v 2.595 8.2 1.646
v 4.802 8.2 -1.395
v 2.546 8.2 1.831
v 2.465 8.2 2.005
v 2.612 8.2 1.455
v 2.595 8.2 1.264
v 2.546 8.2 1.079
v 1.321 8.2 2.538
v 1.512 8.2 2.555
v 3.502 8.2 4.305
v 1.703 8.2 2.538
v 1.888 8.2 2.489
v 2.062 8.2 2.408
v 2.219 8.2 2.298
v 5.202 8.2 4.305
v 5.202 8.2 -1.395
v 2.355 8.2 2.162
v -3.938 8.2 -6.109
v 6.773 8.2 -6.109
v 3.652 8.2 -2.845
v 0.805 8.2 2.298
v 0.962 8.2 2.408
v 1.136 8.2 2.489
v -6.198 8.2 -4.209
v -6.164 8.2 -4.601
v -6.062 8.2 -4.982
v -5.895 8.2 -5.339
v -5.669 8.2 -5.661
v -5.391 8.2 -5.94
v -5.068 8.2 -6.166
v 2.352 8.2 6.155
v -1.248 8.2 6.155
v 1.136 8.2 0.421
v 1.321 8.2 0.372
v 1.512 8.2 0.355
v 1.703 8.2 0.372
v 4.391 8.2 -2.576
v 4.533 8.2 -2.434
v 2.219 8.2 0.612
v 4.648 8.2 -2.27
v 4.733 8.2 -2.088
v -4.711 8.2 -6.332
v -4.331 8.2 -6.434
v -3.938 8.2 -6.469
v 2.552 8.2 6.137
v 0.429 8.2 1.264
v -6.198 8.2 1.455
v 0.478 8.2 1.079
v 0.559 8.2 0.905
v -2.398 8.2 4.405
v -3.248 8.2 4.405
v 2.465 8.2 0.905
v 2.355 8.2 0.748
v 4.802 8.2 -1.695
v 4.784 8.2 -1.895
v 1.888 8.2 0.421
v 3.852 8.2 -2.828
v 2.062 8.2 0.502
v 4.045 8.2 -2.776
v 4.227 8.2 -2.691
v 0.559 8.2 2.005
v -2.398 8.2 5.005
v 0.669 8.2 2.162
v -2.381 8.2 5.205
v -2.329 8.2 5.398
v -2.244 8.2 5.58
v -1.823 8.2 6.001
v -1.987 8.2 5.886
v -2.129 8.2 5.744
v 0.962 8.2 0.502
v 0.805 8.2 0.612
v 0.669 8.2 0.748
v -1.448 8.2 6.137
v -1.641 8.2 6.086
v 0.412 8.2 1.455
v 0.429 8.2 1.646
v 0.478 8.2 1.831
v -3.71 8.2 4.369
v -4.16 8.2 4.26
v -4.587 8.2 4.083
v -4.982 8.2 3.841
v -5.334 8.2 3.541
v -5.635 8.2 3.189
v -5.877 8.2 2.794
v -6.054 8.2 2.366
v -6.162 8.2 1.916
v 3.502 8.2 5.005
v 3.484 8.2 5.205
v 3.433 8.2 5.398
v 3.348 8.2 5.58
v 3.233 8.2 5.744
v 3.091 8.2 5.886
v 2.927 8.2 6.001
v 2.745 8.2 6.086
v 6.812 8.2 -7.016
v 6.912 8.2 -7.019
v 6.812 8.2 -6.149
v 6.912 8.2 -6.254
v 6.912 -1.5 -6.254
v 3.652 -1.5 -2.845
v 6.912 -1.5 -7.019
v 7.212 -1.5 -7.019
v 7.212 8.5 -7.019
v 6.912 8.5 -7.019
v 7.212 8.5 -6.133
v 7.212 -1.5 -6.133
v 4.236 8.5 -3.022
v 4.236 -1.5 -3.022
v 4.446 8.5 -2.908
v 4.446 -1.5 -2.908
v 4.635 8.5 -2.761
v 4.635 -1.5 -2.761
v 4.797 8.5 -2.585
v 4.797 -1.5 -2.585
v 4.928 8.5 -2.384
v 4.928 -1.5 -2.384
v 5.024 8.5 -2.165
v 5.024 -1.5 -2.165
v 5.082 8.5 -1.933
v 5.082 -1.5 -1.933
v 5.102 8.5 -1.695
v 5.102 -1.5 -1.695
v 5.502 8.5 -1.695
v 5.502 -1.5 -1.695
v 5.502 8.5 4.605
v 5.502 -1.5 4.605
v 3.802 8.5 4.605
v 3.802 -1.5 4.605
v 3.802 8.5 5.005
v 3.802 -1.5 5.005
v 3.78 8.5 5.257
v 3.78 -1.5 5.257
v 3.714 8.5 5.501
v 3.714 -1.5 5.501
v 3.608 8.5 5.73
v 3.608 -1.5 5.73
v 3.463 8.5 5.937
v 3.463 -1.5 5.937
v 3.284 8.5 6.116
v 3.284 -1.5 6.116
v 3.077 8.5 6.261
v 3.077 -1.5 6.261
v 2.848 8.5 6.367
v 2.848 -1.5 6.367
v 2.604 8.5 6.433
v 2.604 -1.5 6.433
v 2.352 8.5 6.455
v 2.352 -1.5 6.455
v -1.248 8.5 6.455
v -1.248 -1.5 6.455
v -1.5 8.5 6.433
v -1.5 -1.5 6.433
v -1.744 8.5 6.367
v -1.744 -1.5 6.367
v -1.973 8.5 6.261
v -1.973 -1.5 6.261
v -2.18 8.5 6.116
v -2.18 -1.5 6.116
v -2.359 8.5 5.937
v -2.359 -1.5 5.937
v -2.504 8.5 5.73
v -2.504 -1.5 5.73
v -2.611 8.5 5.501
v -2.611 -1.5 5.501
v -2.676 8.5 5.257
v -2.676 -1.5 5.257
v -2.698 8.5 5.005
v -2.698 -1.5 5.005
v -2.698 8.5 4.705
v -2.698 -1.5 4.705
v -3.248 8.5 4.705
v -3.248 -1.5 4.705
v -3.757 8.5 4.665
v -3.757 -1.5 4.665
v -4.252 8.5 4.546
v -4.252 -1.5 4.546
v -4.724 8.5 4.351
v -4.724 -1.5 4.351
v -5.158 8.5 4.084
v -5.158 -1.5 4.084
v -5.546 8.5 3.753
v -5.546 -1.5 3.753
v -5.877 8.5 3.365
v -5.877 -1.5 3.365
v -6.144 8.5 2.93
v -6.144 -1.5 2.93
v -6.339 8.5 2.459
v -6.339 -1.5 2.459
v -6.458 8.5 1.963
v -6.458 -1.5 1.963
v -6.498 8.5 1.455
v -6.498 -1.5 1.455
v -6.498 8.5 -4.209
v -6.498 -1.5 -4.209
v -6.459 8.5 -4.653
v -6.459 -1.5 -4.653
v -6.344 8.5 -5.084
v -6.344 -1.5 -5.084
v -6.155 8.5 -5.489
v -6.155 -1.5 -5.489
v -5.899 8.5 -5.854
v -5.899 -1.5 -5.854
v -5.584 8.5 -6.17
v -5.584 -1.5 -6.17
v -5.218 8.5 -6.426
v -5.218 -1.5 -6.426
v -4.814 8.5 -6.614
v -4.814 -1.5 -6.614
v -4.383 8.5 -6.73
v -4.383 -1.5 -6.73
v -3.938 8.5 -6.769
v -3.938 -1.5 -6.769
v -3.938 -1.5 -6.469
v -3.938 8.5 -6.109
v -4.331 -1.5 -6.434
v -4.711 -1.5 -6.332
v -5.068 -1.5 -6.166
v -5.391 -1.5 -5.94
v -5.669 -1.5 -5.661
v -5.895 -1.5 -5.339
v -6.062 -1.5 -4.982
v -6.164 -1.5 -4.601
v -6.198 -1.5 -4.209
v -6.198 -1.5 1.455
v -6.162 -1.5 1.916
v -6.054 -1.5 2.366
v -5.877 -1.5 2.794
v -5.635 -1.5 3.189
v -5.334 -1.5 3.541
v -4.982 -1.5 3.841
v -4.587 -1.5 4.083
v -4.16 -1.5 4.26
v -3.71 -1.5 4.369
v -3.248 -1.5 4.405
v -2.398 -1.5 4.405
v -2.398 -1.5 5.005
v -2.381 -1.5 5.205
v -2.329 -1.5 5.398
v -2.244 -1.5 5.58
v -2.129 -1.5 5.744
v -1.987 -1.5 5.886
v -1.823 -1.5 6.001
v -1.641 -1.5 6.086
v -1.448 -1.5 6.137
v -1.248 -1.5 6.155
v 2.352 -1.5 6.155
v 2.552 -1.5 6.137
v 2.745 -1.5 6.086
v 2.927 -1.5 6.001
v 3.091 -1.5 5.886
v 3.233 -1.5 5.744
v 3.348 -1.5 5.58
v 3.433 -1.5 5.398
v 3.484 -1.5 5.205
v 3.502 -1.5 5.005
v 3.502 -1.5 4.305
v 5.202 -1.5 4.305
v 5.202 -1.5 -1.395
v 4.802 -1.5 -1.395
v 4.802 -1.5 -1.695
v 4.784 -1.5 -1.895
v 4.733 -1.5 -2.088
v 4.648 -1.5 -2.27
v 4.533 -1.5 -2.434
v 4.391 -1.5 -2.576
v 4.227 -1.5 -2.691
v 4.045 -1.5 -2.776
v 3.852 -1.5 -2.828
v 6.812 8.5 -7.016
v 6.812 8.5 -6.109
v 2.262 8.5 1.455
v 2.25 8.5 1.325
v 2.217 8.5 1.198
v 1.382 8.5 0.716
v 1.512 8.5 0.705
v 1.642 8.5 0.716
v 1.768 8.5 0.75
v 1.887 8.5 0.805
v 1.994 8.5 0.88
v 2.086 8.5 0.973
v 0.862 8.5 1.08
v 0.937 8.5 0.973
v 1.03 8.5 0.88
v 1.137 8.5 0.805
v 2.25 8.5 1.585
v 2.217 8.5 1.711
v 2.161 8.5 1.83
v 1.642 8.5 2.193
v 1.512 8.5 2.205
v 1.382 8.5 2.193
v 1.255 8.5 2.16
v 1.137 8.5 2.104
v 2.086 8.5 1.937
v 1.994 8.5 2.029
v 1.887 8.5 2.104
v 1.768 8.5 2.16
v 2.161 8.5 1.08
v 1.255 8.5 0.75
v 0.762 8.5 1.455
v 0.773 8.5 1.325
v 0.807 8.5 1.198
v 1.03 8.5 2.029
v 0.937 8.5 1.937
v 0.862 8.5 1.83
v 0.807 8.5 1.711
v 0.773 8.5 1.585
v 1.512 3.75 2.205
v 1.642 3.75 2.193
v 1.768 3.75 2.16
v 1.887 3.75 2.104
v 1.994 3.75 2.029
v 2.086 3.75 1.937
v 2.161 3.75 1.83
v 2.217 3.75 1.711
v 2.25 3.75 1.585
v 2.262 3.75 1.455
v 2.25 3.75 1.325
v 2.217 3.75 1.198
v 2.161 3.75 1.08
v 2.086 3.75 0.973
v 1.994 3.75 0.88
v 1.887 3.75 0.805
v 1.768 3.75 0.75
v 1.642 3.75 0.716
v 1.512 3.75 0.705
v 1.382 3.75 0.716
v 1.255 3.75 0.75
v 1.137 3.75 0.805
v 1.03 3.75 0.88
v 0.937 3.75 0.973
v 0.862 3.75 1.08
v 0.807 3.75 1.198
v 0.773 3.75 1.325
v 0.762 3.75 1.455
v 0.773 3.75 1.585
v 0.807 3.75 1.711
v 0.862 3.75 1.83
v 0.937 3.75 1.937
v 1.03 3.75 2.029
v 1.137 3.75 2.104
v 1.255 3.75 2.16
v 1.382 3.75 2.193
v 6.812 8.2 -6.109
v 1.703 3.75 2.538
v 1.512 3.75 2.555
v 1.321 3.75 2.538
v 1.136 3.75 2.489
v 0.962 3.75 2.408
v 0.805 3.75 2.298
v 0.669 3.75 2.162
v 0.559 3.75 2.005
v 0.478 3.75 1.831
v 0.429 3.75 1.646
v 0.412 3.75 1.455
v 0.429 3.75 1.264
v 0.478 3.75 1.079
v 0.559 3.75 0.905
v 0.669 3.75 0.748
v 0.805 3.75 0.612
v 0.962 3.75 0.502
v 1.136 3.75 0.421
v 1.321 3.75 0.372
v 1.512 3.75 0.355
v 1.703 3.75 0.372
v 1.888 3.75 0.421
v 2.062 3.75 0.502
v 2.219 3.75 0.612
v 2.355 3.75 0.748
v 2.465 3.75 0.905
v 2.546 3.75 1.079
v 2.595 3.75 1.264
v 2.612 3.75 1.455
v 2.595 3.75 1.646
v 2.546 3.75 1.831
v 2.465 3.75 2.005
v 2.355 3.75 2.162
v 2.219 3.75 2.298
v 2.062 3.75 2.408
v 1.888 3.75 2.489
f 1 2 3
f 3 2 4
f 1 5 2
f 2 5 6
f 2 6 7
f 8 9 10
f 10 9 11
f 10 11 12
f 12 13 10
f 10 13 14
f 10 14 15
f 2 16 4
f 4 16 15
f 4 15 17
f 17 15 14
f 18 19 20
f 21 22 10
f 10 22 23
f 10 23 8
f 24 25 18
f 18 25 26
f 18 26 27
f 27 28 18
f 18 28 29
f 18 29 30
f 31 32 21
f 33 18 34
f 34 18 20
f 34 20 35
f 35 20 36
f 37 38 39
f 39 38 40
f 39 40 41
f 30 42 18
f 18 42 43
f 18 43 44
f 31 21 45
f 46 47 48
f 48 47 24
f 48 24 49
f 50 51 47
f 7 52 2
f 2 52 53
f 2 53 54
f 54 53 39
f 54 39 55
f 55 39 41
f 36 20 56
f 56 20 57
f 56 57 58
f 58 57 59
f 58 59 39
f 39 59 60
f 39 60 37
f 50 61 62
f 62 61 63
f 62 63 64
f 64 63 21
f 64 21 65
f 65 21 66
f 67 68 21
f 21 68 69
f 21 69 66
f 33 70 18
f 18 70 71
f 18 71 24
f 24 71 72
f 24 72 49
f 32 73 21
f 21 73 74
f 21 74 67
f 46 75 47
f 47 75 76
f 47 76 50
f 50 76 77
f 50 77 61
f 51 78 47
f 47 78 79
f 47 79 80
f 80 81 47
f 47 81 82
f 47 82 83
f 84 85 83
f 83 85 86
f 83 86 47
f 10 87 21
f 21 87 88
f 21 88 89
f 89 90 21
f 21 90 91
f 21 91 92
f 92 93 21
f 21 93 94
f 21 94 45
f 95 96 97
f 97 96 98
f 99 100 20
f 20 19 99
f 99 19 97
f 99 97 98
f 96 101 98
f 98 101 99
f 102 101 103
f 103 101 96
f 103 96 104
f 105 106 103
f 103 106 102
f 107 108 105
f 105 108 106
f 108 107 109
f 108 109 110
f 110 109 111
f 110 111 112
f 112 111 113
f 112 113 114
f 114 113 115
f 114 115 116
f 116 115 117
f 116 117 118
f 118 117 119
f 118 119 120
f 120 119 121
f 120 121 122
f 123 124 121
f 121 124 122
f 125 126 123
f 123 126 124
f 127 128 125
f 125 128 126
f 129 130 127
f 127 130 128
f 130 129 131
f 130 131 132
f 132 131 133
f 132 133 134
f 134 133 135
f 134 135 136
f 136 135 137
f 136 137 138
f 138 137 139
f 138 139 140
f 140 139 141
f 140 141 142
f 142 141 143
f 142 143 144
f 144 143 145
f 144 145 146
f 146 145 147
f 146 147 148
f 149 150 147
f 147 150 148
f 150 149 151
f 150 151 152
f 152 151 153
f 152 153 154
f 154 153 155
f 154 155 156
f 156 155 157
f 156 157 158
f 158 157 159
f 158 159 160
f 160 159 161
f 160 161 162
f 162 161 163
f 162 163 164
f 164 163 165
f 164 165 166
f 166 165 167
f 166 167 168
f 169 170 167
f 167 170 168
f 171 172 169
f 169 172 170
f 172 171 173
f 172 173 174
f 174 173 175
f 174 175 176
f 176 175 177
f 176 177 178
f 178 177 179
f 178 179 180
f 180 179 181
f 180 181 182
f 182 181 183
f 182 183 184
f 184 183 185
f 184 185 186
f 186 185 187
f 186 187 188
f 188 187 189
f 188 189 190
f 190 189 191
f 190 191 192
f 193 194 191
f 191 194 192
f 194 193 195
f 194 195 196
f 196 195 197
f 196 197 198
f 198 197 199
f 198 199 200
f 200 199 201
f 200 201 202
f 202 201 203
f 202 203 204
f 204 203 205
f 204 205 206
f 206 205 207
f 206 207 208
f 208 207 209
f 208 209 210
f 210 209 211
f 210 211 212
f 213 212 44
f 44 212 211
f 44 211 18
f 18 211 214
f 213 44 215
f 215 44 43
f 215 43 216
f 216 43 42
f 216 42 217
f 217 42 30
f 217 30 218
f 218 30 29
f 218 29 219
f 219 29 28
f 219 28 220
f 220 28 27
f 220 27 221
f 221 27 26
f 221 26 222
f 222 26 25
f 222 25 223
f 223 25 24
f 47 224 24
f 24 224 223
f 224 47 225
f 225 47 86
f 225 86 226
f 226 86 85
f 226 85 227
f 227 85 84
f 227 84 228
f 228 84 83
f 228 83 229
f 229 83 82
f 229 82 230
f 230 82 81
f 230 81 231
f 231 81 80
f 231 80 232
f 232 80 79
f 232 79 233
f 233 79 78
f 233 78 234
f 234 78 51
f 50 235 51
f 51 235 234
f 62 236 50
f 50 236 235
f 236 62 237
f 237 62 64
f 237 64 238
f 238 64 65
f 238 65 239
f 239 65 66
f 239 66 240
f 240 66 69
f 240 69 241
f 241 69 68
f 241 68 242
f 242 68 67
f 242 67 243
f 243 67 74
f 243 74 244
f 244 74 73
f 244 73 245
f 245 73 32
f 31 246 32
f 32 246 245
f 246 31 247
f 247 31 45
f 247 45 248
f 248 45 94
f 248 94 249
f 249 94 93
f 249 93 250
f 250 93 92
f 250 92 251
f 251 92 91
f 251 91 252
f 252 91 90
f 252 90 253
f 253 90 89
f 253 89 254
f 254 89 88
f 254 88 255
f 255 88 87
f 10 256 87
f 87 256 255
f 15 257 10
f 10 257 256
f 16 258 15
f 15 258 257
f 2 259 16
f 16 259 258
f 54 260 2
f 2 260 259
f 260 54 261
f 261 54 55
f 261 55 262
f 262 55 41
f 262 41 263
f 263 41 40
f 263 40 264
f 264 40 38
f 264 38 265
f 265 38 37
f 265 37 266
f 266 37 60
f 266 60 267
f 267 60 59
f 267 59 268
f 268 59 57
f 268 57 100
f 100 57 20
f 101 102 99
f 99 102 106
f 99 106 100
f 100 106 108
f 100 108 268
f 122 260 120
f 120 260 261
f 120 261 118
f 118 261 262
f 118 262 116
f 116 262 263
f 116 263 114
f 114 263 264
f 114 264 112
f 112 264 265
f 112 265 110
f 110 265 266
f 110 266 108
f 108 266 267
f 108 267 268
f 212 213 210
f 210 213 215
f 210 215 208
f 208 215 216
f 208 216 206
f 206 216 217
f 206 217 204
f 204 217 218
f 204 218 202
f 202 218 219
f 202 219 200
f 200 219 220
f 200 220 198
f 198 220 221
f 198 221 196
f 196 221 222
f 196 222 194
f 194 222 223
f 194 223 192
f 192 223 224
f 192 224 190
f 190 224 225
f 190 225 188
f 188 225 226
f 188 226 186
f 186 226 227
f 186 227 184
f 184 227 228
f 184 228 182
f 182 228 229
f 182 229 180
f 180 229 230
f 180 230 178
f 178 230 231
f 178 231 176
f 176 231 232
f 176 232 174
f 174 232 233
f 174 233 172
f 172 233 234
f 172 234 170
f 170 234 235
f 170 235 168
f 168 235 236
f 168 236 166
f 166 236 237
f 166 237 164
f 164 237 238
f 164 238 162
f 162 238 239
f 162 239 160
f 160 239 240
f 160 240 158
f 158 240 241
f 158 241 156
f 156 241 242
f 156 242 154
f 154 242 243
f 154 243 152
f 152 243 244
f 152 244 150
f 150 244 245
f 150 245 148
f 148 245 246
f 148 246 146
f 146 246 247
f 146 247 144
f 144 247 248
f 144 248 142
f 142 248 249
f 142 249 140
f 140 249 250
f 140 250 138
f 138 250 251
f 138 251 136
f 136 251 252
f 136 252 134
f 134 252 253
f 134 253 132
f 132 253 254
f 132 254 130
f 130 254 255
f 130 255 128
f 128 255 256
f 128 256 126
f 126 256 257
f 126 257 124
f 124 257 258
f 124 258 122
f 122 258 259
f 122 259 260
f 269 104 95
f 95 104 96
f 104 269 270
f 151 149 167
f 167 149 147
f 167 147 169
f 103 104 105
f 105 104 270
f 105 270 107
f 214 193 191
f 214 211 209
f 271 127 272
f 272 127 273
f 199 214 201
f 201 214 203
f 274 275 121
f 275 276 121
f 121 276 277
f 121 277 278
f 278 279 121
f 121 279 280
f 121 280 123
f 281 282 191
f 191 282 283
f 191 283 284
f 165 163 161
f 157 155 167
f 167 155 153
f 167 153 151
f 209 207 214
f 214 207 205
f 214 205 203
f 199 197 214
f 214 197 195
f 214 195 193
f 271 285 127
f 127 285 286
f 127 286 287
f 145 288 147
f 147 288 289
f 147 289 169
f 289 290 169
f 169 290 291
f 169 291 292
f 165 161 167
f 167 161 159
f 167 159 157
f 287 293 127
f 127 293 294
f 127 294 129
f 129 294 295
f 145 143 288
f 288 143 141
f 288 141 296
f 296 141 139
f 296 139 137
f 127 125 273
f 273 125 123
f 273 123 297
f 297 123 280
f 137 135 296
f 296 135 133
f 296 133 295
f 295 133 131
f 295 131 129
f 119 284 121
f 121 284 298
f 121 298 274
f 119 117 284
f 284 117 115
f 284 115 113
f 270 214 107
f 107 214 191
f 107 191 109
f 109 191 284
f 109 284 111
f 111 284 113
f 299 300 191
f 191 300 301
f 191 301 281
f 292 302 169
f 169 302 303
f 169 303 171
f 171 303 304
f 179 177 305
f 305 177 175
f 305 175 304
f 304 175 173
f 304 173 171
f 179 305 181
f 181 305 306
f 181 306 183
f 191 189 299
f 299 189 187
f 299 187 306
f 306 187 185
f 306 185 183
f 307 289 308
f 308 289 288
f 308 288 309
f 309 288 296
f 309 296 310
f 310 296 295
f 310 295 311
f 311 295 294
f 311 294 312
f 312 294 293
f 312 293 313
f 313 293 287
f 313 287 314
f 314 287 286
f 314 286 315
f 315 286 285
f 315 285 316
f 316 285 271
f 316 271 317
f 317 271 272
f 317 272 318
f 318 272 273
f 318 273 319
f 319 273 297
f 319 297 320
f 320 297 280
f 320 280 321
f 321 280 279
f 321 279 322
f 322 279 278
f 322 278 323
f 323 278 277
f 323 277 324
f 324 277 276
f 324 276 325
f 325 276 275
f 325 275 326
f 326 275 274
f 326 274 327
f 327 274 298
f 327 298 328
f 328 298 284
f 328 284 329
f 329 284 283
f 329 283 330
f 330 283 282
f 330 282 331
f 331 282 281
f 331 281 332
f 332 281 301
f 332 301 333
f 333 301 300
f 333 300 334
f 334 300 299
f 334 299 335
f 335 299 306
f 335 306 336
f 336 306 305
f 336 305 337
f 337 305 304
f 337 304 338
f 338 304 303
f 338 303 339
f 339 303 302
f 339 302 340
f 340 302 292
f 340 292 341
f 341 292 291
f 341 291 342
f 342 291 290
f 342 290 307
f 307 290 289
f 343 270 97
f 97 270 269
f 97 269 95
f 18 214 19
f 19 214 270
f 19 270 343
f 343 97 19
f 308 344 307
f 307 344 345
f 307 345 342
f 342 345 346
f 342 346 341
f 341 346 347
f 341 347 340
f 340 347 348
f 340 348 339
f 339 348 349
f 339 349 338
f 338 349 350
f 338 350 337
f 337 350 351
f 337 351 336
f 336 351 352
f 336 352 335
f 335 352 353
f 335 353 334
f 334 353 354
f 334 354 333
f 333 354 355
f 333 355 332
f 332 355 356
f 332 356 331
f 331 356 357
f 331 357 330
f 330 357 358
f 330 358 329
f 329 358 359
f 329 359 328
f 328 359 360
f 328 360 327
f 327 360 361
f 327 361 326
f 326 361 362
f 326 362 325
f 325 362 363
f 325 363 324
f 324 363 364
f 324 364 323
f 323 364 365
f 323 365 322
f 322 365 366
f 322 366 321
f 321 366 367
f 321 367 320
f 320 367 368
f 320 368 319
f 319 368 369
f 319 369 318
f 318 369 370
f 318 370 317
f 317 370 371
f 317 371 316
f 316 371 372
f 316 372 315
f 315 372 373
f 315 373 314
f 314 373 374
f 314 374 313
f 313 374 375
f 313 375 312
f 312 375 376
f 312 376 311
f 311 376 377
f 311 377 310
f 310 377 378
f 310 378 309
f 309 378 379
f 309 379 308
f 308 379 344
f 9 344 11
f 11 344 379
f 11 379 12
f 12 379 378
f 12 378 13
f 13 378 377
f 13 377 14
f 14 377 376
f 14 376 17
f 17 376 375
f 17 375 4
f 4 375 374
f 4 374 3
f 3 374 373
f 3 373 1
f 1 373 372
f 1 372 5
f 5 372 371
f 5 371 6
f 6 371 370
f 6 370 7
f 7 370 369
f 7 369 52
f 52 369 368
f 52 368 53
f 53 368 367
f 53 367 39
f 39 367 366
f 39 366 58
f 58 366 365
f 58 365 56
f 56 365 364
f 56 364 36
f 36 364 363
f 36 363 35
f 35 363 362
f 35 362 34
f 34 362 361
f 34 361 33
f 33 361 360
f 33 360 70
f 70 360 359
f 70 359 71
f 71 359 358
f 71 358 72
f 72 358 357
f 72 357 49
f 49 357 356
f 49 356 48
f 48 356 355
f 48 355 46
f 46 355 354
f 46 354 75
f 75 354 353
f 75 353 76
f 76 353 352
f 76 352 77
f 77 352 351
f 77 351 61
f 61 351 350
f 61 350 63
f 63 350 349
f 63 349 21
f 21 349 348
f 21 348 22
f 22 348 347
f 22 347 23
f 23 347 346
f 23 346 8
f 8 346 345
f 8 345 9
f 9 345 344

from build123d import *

# Parameters (mm, degrees)
BOSS_EXTRUDE2_DEPTH      = 8.2
BOSS_EXTRUDE2_DEPTH_BACK = 1.5
BOSS_EXTRUDE3_DEPTH      = 0.3
SKETCH7_R                = 0.75
CUT_EXTRUDE2_DEPTH       = 0.3
SKETCH8_R                = 1.1
SKETCH8_R_2              = 0.75
BOSS_EXTRUDE4_DEPTH      = 4.45


with BuildPart() as part:
    # Sketch1 → Boss-Extrude2 (new, two sides: drawn at the far end of the back side and taken through both)
    with BuildSketch(Plane(origin=(0, 0, 0), x_dir=(1, 0, 0), z_dir=(0, 1, 0)).offset(-BOSS_EXTRUDE2_DEPTH_BACK)):
        with BuildLine():
            Line((6.911883639, 6.253618181), (6.911883639, 7.018695497))
            Line((6.911883639, 7.018695497), (7.211883639, 7.018695497))
            Line((7.211883639, 7.018695497), (7.211883639, 6.133248982))
            Line((7.211883639, 6.133248982), (4.236305543, 3.022131406))
            ThreePointArc((4.236305543, 3.022131406), (4.866361255, 2.487299926), (5.101883639, 1.695123103))
            Line((5.101883639, 1.695123103), (5.501883639, 1.695123103))
            Line((5.501883639, 1.695123103), (5.501883639, -4.604876897))
            Line((5.501883639, -4.604876897), (3.801883639, -4.604876897))
            Line((3.801883639, -4.604876897), (3.801883639, -5.004876897))
            ThreePointArc((3.801883639, -5.004876897), (3.377188471, -6.03018173), (2.351883639, -6.454876897))
            Line((2.351883639, -6.454876897), (-1.248116361, -6.454876897))
            ThreePointArc((-1.248116361, -6.454876897), (-2.273421194, -6.03018173), (-2.698116361, -5.004876897))
            Line((-2.698116361, -5.004876897), (-2.698116361, -4.704876897))
            Line((-2.698116361, -4.704876897), (-3.248116361, -4.704876897))
            ThreePointArc((-3.248116361, -4.704876897), (-5.5462134, -3.752973936), (-6.498116361, -1.454876897))
            Line((-6.498116361, -1.454876897), (-6.498116361, 4.208695497))
            ThreePointArc((-6.498116361, 4.208695497), (-5.748309721, 6.018888856), (-3.938116361, 6.768695497))
            Line((-3.938116361, 6.768695497), (-3.938116361, 6.468695497))
            ThreePointArc((-3.938116361, 6.468695497), (-5.536177687, 5.806756822), (-6.198116361, 4.208695497))
            Line((-6.198116361, 4.208695497), (-6.198116361, -1.454876897))
            ThreePointArc((-6.198116361, -1.454876897), (-5.334081366, -3.540841902), (-3.248116361, -4.404876897))
            Line((-3.248116361, -4.404876897), (-2.398116361, -4.404876897))
            Line((-2.398116361, -4.404876897), (-2.398116361, -5.004876897))
            ThreePointArc((-2.398116361, -5.004876897), (-2.06128916, -5.818049696), (-1.248116361, -6.154876897))
            Line((-1.248116361, -6.154876897), (2.351883639, -6.154876897))
            ThreePointArc((2.351883639, -6.154876897), (3.165056437, -5.818049696), (3.501883639, -5.004876897))
            Line((3.501883639, -5.004876897), (3.501883639, -4.304876897))
            Line((3.501883639, -4.304876897), (5.201883639, -4.304876897))
            Line((5.201883639, -4.304876897), (5.201883639, 1.395123103))
            Line((5.201883639, 1.395123103), (4.801883639, 1.395123103))
            Line((4.801883639, 1.395123103), (4.801883639, 1.695123103))
            ThreePointArc((4.801883639, 1.695123103), (4.465056437, 2.508295901), (3.651883639, 2.845123103))
            Line((3.651883639, 2.845123103), (6.911883639, 6.253618181))
        make_face()
    extrude(amount=BOSS_EXTRUDE2_DEPTH + BOSS_EXTRUDE2_DEPTH_BACK)

    # Sketch6 → Boss-Extrude3 (add)
    with BuildSketch(Plane(origin=(0, 8.2, 0), x_dir=(1, 0, 0), z_dir=(0, 1, 0))):
        with BuildLine():
            Line((-3.938116361, 6.768695497), (6.911883639, 7.018695497))
            Line((6.911883639, 7.018695497), (7.211883639, 7.018695497))
            Line((7.211883639, 7.018695497), (7.211883639, 6.133248982))
            Line((7.211883639, 6.133248982), (4.236305543, 3.022131406))
            ThreePointArc((4.236305543, 3.022131406), (4.866361255, 2.487299926), (5.101883639, 1.695123103))
            Line((5.101883639, 1.695123103), (5.501883639, 1.695123103))
            Line((5.501883639, 1.695123103), (5.501883639, -4.604876897))
            Line((5.501883639, -4.604876897), (3.801883639, -4.604876897))
            Line((3.801883639, -4.604876897), (3.801883639, -5.004876897))
            ThreePointArc((3.801883639, -5.004876897), (3.377188471, -6.03018173), (2.351883639, -6.454876897))
            Line((2.351883639, -6.454876897), (-1.248116361, -6.454876897))
            ThreePointArc((-1.248116361, -6.454876897), (-2.273421194, -6.03018173), (-2.698116361, -5.004876897))
            Line((-2.698116361, -5.004876897), (-2.698116361, -4.704876897))
            Line((-2.698116361, -4.704876897), (-3.248116361, -4.704876897))
            ThreePointArc((-3.248116361, -4.704876897), (-5.5462134, -3.752973936), (-6.498116361, -1.454876897))
            Line((-6.498116361, -1.454876897), (-6.498116361, 4.208695497))
            ThreePointArc((-6.498116361, 4.208695497), (-5.748309721, 6.018888856), (-3.938116361, 6.768695497))
        make_face()
    extrude(amount=BOSS_EXTRUDE3_DEPTH)

    # Sketch7 → Cut-Extrude2 (cut)
    with BuildSketch(Plane(origin=(0, 8.5, 0), x_dir=(1, 0, 0), z_dir=(0, 1, 0))):
        with Locations(Location((1.511883639, -1.454876897, 0), (0, 0, 270))):
            Circle(SKETCH7_R)
        Polygon((-3.938116361, 6.768695497), (-3.938116361, 6.108695497), (6.811883639, 6.108695497), (6.811883639, 7.016391349), align=None)
    extrude(amount=-CUT_EXTRUDE2_DEPTH, mode=Mode.SUBTRACT)

    # Sketch8 → Boss-Extrude4 (add)
    with BuildSketch(Plane.XZ.offset(-8.2)):
        with Locations(Location((1.511883639, 1.454876897, 0), (0, 0, 90))):
            Circle(SKETCH8_R)
        with Locations(Location((1.511883639, 1.454876897, 0), (0, 0, 90))):
            Circle(SKETCH8_R_2, mode=Mode.SUBTRACT)
    extrude(amount=BOSS_EXTRUDE4_DEPTH)


solid = part.part
